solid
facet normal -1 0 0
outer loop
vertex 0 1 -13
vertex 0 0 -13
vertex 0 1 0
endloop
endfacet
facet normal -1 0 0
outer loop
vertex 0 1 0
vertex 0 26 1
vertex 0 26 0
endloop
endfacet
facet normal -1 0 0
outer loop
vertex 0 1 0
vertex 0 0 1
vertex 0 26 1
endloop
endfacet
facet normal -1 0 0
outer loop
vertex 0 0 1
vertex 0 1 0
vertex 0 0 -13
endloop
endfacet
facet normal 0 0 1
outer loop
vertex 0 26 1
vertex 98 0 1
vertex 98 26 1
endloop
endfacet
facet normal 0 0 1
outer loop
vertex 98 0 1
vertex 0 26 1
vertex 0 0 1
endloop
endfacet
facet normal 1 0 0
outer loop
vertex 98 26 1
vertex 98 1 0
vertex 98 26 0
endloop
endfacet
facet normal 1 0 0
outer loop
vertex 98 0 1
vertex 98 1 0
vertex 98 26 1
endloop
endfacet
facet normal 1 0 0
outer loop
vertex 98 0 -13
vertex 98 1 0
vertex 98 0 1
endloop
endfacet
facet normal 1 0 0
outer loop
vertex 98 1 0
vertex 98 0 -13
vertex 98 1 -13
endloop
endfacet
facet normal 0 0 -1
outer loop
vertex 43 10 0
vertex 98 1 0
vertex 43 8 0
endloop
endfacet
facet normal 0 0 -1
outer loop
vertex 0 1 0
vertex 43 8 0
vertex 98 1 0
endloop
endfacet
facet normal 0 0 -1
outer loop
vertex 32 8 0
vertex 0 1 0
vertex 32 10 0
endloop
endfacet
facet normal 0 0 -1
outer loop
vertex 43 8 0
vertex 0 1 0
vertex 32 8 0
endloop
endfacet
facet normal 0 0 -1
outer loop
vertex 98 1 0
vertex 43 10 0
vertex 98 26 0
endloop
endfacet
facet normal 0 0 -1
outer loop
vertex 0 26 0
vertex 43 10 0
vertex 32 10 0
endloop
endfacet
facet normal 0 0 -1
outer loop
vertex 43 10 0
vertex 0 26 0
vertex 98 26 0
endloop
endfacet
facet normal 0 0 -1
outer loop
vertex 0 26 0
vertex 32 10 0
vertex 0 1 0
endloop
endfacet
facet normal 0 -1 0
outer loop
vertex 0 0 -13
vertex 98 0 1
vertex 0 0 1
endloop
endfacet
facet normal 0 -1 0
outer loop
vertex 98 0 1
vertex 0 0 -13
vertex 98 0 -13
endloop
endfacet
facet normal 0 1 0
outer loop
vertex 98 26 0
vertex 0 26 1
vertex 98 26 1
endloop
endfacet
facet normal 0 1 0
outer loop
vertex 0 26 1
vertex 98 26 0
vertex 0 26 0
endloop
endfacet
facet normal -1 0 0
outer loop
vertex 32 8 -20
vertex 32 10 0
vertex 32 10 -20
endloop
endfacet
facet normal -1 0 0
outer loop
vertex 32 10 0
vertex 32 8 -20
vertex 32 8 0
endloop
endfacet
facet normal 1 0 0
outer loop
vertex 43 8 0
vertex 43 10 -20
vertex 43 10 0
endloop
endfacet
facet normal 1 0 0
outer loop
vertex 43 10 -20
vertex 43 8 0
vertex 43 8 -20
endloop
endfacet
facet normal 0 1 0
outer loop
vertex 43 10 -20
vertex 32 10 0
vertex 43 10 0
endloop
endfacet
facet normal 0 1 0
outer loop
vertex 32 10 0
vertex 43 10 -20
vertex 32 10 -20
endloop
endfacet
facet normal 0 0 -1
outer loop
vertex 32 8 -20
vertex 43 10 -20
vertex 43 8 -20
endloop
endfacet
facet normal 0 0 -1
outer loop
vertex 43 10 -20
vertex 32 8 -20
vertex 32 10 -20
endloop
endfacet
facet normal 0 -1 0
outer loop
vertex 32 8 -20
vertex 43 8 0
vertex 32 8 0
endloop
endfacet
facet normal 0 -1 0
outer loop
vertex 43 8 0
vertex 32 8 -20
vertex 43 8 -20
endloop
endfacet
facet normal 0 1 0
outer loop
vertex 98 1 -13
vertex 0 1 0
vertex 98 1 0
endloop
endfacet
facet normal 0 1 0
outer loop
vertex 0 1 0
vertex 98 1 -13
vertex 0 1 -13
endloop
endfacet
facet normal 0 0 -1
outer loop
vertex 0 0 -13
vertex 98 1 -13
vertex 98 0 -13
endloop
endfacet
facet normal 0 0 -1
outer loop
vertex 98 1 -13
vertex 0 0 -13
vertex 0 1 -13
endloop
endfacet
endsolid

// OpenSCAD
cube([98,26,1]);
translate([32,9,0]) {
    usb_port();
}
rotate([270,0,0]) {
    cube([98,13,1]);
}

module usb_port() {
    h = 20;
    w = 11;
    translate([w/2,0,-h/2]) {
        cube([w,2,h], true);
    }
}
